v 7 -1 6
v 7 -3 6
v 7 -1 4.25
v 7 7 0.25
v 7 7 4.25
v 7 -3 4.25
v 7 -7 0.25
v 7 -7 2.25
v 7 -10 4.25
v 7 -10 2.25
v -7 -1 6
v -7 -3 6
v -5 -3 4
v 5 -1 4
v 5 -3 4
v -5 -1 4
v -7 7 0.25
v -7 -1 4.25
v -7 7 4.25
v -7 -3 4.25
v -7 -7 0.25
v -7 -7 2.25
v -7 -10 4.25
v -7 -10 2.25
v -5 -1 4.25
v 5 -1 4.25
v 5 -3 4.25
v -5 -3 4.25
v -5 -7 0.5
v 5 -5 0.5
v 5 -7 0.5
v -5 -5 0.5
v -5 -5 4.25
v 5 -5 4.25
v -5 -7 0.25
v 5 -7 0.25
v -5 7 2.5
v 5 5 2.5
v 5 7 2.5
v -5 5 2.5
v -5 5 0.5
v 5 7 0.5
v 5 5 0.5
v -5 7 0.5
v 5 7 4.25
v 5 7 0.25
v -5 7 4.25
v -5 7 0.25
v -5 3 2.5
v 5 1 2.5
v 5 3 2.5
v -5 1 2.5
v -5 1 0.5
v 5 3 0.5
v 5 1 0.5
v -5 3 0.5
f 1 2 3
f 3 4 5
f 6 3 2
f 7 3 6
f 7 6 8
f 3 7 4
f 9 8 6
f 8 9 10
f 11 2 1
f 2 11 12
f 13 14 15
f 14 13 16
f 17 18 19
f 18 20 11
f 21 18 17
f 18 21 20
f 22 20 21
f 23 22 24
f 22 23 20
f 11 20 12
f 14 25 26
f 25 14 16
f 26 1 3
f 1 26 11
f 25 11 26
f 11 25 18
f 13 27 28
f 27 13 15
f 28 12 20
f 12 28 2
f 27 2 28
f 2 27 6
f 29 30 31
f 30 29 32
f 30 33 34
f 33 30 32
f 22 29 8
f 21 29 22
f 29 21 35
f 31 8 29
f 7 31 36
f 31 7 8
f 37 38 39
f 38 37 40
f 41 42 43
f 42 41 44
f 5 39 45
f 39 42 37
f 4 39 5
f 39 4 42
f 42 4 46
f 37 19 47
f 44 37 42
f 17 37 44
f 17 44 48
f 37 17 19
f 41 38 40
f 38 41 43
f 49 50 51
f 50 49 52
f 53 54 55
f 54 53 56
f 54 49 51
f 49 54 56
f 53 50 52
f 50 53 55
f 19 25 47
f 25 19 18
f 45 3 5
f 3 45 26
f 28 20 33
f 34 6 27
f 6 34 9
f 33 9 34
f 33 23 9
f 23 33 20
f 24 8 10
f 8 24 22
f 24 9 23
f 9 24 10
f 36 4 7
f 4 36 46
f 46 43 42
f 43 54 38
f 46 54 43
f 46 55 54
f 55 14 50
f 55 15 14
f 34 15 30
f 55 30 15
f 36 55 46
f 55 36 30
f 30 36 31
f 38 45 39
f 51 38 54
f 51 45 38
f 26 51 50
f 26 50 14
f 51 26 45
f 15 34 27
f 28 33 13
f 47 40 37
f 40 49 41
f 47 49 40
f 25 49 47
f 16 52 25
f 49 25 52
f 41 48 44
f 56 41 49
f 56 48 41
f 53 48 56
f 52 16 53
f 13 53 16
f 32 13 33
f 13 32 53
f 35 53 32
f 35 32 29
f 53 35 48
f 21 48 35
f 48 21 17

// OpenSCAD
translate([0, -2, 5]) {
    cube(size = [14, 2, 2], center=true);
}
#translate([0, -6, 1.5]) {
    cube(size = [14, 2, 2], center=true);
}
translate([0, 6, 1.5]) {
    cube(size = [14, 2, 2], center=true);
}
translate([0, 2, 1.5]) {
    cube(size = [14, 2, 2], center=true);
}
translate([0, -7.5, 3.25]) {
    cube(size = [14, 5, 2], center=true);
}
translate([6, 0, 2.25]) {
    cube(size = [2, 14, 4], center=true);
}
translate([-6, 0, 2.25]) {
    cube(size = [2, 14, 4], center=true);
}
